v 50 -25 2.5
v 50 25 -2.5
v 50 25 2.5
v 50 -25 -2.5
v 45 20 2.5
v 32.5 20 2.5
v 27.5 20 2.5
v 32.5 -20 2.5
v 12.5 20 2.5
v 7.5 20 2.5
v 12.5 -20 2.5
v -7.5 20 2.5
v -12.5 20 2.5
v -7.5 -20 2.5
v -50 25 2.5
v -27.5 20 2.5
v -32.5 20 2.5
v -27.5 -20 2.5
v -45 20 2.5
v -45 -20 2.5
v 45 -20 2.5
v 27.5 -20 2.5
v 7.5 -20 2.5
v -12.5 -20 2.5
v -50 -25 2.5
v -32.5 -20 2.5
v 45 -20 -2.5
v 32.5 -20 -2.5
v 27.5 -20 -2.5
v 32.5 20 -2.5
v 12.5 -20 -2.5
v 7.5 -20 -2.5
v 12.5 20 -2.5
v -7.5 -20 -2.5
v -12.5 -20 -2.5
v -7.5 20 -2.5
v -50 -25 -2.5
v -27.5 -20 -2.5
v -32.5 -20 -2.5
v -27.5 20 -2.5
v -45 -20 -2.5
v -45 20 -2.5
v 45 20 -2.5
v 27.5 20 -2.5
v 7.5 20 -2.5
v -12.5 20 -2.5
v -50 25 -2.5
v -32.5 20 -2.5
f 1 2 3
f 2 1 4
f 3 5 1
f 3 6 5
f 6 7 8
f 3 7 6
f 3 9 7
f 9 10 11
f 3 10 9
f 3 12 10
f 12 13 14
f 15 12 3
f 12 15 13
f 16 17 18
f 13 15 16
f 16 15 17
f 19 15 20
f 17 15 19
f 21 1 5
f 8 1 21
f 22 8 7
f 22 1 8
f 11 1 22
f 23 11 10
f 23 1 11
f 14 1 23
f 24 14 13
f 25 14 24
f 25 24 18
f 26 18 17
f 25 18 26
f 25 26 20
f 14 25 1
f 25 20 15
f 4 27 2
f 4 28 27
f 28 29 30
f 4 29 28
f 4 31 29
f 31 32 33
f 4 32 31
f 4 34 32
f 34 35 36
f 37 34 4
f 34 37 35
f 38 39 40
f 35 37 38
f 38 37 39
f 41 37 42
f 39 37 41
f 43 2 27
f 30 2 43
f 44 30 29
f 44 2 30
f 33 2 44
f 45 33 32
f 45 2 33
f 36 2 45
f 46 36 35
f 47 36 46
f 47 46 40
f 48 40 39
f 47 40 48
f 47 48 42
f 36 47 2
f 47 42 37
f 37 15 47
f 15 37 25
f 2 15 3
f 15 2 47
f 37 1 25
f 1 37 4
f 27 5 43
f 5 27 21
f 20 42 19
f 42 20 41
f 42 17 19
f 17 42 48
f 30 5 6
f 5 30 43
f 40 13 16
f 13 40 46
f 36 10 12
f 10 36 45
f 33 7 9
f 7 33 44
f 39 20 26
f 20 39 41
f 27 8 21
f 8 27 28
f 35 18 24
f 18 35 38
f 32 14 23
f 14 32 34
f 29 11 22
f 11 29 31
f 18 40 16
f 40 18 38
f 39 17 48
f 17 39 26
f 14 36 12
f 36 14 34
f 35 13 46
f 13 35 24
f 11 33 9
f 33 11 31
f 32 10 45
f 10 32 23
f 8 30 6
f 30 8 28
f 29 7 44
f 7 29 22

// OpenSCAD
// Parameters for the rectangular frame
frame_length = 100;  // Length of the outer rectangle
frame_width = 50;    // Width of the outer rectangle
frame_thickness = 5; // Thickness of the frame
division_count = 4;  // Number of internal divisions (modified to create 5 openings)
division_thickness = 5; // Thickness of the internal divisions

module rectangular_frame() {
    // Outer frame
    difference() {
        // Outer rectangle
        cube([frame_length, frame_width, frame_thickness], center = true);
        
        // Hollow inner rectangle
        translate([0, 0, -0.1]) // Slightly offset to ensure proper subtraction
        cube([frame_length - 2 * frame_thickness, frame_width - 2 * frame_thickness, frame_thickness + 0.2], center = true);
    }
    
    // Internal divisions
    for (i = [1:division_count]) {
        translate([-(frame_length / 2) + (i * (frame_length / (division_count + 1))), 0, 0])
        cube([division_thickness, frame_width, frame_thickness], center = true);
    }
}

// Render the rectangular frame
rectangular_frame();
